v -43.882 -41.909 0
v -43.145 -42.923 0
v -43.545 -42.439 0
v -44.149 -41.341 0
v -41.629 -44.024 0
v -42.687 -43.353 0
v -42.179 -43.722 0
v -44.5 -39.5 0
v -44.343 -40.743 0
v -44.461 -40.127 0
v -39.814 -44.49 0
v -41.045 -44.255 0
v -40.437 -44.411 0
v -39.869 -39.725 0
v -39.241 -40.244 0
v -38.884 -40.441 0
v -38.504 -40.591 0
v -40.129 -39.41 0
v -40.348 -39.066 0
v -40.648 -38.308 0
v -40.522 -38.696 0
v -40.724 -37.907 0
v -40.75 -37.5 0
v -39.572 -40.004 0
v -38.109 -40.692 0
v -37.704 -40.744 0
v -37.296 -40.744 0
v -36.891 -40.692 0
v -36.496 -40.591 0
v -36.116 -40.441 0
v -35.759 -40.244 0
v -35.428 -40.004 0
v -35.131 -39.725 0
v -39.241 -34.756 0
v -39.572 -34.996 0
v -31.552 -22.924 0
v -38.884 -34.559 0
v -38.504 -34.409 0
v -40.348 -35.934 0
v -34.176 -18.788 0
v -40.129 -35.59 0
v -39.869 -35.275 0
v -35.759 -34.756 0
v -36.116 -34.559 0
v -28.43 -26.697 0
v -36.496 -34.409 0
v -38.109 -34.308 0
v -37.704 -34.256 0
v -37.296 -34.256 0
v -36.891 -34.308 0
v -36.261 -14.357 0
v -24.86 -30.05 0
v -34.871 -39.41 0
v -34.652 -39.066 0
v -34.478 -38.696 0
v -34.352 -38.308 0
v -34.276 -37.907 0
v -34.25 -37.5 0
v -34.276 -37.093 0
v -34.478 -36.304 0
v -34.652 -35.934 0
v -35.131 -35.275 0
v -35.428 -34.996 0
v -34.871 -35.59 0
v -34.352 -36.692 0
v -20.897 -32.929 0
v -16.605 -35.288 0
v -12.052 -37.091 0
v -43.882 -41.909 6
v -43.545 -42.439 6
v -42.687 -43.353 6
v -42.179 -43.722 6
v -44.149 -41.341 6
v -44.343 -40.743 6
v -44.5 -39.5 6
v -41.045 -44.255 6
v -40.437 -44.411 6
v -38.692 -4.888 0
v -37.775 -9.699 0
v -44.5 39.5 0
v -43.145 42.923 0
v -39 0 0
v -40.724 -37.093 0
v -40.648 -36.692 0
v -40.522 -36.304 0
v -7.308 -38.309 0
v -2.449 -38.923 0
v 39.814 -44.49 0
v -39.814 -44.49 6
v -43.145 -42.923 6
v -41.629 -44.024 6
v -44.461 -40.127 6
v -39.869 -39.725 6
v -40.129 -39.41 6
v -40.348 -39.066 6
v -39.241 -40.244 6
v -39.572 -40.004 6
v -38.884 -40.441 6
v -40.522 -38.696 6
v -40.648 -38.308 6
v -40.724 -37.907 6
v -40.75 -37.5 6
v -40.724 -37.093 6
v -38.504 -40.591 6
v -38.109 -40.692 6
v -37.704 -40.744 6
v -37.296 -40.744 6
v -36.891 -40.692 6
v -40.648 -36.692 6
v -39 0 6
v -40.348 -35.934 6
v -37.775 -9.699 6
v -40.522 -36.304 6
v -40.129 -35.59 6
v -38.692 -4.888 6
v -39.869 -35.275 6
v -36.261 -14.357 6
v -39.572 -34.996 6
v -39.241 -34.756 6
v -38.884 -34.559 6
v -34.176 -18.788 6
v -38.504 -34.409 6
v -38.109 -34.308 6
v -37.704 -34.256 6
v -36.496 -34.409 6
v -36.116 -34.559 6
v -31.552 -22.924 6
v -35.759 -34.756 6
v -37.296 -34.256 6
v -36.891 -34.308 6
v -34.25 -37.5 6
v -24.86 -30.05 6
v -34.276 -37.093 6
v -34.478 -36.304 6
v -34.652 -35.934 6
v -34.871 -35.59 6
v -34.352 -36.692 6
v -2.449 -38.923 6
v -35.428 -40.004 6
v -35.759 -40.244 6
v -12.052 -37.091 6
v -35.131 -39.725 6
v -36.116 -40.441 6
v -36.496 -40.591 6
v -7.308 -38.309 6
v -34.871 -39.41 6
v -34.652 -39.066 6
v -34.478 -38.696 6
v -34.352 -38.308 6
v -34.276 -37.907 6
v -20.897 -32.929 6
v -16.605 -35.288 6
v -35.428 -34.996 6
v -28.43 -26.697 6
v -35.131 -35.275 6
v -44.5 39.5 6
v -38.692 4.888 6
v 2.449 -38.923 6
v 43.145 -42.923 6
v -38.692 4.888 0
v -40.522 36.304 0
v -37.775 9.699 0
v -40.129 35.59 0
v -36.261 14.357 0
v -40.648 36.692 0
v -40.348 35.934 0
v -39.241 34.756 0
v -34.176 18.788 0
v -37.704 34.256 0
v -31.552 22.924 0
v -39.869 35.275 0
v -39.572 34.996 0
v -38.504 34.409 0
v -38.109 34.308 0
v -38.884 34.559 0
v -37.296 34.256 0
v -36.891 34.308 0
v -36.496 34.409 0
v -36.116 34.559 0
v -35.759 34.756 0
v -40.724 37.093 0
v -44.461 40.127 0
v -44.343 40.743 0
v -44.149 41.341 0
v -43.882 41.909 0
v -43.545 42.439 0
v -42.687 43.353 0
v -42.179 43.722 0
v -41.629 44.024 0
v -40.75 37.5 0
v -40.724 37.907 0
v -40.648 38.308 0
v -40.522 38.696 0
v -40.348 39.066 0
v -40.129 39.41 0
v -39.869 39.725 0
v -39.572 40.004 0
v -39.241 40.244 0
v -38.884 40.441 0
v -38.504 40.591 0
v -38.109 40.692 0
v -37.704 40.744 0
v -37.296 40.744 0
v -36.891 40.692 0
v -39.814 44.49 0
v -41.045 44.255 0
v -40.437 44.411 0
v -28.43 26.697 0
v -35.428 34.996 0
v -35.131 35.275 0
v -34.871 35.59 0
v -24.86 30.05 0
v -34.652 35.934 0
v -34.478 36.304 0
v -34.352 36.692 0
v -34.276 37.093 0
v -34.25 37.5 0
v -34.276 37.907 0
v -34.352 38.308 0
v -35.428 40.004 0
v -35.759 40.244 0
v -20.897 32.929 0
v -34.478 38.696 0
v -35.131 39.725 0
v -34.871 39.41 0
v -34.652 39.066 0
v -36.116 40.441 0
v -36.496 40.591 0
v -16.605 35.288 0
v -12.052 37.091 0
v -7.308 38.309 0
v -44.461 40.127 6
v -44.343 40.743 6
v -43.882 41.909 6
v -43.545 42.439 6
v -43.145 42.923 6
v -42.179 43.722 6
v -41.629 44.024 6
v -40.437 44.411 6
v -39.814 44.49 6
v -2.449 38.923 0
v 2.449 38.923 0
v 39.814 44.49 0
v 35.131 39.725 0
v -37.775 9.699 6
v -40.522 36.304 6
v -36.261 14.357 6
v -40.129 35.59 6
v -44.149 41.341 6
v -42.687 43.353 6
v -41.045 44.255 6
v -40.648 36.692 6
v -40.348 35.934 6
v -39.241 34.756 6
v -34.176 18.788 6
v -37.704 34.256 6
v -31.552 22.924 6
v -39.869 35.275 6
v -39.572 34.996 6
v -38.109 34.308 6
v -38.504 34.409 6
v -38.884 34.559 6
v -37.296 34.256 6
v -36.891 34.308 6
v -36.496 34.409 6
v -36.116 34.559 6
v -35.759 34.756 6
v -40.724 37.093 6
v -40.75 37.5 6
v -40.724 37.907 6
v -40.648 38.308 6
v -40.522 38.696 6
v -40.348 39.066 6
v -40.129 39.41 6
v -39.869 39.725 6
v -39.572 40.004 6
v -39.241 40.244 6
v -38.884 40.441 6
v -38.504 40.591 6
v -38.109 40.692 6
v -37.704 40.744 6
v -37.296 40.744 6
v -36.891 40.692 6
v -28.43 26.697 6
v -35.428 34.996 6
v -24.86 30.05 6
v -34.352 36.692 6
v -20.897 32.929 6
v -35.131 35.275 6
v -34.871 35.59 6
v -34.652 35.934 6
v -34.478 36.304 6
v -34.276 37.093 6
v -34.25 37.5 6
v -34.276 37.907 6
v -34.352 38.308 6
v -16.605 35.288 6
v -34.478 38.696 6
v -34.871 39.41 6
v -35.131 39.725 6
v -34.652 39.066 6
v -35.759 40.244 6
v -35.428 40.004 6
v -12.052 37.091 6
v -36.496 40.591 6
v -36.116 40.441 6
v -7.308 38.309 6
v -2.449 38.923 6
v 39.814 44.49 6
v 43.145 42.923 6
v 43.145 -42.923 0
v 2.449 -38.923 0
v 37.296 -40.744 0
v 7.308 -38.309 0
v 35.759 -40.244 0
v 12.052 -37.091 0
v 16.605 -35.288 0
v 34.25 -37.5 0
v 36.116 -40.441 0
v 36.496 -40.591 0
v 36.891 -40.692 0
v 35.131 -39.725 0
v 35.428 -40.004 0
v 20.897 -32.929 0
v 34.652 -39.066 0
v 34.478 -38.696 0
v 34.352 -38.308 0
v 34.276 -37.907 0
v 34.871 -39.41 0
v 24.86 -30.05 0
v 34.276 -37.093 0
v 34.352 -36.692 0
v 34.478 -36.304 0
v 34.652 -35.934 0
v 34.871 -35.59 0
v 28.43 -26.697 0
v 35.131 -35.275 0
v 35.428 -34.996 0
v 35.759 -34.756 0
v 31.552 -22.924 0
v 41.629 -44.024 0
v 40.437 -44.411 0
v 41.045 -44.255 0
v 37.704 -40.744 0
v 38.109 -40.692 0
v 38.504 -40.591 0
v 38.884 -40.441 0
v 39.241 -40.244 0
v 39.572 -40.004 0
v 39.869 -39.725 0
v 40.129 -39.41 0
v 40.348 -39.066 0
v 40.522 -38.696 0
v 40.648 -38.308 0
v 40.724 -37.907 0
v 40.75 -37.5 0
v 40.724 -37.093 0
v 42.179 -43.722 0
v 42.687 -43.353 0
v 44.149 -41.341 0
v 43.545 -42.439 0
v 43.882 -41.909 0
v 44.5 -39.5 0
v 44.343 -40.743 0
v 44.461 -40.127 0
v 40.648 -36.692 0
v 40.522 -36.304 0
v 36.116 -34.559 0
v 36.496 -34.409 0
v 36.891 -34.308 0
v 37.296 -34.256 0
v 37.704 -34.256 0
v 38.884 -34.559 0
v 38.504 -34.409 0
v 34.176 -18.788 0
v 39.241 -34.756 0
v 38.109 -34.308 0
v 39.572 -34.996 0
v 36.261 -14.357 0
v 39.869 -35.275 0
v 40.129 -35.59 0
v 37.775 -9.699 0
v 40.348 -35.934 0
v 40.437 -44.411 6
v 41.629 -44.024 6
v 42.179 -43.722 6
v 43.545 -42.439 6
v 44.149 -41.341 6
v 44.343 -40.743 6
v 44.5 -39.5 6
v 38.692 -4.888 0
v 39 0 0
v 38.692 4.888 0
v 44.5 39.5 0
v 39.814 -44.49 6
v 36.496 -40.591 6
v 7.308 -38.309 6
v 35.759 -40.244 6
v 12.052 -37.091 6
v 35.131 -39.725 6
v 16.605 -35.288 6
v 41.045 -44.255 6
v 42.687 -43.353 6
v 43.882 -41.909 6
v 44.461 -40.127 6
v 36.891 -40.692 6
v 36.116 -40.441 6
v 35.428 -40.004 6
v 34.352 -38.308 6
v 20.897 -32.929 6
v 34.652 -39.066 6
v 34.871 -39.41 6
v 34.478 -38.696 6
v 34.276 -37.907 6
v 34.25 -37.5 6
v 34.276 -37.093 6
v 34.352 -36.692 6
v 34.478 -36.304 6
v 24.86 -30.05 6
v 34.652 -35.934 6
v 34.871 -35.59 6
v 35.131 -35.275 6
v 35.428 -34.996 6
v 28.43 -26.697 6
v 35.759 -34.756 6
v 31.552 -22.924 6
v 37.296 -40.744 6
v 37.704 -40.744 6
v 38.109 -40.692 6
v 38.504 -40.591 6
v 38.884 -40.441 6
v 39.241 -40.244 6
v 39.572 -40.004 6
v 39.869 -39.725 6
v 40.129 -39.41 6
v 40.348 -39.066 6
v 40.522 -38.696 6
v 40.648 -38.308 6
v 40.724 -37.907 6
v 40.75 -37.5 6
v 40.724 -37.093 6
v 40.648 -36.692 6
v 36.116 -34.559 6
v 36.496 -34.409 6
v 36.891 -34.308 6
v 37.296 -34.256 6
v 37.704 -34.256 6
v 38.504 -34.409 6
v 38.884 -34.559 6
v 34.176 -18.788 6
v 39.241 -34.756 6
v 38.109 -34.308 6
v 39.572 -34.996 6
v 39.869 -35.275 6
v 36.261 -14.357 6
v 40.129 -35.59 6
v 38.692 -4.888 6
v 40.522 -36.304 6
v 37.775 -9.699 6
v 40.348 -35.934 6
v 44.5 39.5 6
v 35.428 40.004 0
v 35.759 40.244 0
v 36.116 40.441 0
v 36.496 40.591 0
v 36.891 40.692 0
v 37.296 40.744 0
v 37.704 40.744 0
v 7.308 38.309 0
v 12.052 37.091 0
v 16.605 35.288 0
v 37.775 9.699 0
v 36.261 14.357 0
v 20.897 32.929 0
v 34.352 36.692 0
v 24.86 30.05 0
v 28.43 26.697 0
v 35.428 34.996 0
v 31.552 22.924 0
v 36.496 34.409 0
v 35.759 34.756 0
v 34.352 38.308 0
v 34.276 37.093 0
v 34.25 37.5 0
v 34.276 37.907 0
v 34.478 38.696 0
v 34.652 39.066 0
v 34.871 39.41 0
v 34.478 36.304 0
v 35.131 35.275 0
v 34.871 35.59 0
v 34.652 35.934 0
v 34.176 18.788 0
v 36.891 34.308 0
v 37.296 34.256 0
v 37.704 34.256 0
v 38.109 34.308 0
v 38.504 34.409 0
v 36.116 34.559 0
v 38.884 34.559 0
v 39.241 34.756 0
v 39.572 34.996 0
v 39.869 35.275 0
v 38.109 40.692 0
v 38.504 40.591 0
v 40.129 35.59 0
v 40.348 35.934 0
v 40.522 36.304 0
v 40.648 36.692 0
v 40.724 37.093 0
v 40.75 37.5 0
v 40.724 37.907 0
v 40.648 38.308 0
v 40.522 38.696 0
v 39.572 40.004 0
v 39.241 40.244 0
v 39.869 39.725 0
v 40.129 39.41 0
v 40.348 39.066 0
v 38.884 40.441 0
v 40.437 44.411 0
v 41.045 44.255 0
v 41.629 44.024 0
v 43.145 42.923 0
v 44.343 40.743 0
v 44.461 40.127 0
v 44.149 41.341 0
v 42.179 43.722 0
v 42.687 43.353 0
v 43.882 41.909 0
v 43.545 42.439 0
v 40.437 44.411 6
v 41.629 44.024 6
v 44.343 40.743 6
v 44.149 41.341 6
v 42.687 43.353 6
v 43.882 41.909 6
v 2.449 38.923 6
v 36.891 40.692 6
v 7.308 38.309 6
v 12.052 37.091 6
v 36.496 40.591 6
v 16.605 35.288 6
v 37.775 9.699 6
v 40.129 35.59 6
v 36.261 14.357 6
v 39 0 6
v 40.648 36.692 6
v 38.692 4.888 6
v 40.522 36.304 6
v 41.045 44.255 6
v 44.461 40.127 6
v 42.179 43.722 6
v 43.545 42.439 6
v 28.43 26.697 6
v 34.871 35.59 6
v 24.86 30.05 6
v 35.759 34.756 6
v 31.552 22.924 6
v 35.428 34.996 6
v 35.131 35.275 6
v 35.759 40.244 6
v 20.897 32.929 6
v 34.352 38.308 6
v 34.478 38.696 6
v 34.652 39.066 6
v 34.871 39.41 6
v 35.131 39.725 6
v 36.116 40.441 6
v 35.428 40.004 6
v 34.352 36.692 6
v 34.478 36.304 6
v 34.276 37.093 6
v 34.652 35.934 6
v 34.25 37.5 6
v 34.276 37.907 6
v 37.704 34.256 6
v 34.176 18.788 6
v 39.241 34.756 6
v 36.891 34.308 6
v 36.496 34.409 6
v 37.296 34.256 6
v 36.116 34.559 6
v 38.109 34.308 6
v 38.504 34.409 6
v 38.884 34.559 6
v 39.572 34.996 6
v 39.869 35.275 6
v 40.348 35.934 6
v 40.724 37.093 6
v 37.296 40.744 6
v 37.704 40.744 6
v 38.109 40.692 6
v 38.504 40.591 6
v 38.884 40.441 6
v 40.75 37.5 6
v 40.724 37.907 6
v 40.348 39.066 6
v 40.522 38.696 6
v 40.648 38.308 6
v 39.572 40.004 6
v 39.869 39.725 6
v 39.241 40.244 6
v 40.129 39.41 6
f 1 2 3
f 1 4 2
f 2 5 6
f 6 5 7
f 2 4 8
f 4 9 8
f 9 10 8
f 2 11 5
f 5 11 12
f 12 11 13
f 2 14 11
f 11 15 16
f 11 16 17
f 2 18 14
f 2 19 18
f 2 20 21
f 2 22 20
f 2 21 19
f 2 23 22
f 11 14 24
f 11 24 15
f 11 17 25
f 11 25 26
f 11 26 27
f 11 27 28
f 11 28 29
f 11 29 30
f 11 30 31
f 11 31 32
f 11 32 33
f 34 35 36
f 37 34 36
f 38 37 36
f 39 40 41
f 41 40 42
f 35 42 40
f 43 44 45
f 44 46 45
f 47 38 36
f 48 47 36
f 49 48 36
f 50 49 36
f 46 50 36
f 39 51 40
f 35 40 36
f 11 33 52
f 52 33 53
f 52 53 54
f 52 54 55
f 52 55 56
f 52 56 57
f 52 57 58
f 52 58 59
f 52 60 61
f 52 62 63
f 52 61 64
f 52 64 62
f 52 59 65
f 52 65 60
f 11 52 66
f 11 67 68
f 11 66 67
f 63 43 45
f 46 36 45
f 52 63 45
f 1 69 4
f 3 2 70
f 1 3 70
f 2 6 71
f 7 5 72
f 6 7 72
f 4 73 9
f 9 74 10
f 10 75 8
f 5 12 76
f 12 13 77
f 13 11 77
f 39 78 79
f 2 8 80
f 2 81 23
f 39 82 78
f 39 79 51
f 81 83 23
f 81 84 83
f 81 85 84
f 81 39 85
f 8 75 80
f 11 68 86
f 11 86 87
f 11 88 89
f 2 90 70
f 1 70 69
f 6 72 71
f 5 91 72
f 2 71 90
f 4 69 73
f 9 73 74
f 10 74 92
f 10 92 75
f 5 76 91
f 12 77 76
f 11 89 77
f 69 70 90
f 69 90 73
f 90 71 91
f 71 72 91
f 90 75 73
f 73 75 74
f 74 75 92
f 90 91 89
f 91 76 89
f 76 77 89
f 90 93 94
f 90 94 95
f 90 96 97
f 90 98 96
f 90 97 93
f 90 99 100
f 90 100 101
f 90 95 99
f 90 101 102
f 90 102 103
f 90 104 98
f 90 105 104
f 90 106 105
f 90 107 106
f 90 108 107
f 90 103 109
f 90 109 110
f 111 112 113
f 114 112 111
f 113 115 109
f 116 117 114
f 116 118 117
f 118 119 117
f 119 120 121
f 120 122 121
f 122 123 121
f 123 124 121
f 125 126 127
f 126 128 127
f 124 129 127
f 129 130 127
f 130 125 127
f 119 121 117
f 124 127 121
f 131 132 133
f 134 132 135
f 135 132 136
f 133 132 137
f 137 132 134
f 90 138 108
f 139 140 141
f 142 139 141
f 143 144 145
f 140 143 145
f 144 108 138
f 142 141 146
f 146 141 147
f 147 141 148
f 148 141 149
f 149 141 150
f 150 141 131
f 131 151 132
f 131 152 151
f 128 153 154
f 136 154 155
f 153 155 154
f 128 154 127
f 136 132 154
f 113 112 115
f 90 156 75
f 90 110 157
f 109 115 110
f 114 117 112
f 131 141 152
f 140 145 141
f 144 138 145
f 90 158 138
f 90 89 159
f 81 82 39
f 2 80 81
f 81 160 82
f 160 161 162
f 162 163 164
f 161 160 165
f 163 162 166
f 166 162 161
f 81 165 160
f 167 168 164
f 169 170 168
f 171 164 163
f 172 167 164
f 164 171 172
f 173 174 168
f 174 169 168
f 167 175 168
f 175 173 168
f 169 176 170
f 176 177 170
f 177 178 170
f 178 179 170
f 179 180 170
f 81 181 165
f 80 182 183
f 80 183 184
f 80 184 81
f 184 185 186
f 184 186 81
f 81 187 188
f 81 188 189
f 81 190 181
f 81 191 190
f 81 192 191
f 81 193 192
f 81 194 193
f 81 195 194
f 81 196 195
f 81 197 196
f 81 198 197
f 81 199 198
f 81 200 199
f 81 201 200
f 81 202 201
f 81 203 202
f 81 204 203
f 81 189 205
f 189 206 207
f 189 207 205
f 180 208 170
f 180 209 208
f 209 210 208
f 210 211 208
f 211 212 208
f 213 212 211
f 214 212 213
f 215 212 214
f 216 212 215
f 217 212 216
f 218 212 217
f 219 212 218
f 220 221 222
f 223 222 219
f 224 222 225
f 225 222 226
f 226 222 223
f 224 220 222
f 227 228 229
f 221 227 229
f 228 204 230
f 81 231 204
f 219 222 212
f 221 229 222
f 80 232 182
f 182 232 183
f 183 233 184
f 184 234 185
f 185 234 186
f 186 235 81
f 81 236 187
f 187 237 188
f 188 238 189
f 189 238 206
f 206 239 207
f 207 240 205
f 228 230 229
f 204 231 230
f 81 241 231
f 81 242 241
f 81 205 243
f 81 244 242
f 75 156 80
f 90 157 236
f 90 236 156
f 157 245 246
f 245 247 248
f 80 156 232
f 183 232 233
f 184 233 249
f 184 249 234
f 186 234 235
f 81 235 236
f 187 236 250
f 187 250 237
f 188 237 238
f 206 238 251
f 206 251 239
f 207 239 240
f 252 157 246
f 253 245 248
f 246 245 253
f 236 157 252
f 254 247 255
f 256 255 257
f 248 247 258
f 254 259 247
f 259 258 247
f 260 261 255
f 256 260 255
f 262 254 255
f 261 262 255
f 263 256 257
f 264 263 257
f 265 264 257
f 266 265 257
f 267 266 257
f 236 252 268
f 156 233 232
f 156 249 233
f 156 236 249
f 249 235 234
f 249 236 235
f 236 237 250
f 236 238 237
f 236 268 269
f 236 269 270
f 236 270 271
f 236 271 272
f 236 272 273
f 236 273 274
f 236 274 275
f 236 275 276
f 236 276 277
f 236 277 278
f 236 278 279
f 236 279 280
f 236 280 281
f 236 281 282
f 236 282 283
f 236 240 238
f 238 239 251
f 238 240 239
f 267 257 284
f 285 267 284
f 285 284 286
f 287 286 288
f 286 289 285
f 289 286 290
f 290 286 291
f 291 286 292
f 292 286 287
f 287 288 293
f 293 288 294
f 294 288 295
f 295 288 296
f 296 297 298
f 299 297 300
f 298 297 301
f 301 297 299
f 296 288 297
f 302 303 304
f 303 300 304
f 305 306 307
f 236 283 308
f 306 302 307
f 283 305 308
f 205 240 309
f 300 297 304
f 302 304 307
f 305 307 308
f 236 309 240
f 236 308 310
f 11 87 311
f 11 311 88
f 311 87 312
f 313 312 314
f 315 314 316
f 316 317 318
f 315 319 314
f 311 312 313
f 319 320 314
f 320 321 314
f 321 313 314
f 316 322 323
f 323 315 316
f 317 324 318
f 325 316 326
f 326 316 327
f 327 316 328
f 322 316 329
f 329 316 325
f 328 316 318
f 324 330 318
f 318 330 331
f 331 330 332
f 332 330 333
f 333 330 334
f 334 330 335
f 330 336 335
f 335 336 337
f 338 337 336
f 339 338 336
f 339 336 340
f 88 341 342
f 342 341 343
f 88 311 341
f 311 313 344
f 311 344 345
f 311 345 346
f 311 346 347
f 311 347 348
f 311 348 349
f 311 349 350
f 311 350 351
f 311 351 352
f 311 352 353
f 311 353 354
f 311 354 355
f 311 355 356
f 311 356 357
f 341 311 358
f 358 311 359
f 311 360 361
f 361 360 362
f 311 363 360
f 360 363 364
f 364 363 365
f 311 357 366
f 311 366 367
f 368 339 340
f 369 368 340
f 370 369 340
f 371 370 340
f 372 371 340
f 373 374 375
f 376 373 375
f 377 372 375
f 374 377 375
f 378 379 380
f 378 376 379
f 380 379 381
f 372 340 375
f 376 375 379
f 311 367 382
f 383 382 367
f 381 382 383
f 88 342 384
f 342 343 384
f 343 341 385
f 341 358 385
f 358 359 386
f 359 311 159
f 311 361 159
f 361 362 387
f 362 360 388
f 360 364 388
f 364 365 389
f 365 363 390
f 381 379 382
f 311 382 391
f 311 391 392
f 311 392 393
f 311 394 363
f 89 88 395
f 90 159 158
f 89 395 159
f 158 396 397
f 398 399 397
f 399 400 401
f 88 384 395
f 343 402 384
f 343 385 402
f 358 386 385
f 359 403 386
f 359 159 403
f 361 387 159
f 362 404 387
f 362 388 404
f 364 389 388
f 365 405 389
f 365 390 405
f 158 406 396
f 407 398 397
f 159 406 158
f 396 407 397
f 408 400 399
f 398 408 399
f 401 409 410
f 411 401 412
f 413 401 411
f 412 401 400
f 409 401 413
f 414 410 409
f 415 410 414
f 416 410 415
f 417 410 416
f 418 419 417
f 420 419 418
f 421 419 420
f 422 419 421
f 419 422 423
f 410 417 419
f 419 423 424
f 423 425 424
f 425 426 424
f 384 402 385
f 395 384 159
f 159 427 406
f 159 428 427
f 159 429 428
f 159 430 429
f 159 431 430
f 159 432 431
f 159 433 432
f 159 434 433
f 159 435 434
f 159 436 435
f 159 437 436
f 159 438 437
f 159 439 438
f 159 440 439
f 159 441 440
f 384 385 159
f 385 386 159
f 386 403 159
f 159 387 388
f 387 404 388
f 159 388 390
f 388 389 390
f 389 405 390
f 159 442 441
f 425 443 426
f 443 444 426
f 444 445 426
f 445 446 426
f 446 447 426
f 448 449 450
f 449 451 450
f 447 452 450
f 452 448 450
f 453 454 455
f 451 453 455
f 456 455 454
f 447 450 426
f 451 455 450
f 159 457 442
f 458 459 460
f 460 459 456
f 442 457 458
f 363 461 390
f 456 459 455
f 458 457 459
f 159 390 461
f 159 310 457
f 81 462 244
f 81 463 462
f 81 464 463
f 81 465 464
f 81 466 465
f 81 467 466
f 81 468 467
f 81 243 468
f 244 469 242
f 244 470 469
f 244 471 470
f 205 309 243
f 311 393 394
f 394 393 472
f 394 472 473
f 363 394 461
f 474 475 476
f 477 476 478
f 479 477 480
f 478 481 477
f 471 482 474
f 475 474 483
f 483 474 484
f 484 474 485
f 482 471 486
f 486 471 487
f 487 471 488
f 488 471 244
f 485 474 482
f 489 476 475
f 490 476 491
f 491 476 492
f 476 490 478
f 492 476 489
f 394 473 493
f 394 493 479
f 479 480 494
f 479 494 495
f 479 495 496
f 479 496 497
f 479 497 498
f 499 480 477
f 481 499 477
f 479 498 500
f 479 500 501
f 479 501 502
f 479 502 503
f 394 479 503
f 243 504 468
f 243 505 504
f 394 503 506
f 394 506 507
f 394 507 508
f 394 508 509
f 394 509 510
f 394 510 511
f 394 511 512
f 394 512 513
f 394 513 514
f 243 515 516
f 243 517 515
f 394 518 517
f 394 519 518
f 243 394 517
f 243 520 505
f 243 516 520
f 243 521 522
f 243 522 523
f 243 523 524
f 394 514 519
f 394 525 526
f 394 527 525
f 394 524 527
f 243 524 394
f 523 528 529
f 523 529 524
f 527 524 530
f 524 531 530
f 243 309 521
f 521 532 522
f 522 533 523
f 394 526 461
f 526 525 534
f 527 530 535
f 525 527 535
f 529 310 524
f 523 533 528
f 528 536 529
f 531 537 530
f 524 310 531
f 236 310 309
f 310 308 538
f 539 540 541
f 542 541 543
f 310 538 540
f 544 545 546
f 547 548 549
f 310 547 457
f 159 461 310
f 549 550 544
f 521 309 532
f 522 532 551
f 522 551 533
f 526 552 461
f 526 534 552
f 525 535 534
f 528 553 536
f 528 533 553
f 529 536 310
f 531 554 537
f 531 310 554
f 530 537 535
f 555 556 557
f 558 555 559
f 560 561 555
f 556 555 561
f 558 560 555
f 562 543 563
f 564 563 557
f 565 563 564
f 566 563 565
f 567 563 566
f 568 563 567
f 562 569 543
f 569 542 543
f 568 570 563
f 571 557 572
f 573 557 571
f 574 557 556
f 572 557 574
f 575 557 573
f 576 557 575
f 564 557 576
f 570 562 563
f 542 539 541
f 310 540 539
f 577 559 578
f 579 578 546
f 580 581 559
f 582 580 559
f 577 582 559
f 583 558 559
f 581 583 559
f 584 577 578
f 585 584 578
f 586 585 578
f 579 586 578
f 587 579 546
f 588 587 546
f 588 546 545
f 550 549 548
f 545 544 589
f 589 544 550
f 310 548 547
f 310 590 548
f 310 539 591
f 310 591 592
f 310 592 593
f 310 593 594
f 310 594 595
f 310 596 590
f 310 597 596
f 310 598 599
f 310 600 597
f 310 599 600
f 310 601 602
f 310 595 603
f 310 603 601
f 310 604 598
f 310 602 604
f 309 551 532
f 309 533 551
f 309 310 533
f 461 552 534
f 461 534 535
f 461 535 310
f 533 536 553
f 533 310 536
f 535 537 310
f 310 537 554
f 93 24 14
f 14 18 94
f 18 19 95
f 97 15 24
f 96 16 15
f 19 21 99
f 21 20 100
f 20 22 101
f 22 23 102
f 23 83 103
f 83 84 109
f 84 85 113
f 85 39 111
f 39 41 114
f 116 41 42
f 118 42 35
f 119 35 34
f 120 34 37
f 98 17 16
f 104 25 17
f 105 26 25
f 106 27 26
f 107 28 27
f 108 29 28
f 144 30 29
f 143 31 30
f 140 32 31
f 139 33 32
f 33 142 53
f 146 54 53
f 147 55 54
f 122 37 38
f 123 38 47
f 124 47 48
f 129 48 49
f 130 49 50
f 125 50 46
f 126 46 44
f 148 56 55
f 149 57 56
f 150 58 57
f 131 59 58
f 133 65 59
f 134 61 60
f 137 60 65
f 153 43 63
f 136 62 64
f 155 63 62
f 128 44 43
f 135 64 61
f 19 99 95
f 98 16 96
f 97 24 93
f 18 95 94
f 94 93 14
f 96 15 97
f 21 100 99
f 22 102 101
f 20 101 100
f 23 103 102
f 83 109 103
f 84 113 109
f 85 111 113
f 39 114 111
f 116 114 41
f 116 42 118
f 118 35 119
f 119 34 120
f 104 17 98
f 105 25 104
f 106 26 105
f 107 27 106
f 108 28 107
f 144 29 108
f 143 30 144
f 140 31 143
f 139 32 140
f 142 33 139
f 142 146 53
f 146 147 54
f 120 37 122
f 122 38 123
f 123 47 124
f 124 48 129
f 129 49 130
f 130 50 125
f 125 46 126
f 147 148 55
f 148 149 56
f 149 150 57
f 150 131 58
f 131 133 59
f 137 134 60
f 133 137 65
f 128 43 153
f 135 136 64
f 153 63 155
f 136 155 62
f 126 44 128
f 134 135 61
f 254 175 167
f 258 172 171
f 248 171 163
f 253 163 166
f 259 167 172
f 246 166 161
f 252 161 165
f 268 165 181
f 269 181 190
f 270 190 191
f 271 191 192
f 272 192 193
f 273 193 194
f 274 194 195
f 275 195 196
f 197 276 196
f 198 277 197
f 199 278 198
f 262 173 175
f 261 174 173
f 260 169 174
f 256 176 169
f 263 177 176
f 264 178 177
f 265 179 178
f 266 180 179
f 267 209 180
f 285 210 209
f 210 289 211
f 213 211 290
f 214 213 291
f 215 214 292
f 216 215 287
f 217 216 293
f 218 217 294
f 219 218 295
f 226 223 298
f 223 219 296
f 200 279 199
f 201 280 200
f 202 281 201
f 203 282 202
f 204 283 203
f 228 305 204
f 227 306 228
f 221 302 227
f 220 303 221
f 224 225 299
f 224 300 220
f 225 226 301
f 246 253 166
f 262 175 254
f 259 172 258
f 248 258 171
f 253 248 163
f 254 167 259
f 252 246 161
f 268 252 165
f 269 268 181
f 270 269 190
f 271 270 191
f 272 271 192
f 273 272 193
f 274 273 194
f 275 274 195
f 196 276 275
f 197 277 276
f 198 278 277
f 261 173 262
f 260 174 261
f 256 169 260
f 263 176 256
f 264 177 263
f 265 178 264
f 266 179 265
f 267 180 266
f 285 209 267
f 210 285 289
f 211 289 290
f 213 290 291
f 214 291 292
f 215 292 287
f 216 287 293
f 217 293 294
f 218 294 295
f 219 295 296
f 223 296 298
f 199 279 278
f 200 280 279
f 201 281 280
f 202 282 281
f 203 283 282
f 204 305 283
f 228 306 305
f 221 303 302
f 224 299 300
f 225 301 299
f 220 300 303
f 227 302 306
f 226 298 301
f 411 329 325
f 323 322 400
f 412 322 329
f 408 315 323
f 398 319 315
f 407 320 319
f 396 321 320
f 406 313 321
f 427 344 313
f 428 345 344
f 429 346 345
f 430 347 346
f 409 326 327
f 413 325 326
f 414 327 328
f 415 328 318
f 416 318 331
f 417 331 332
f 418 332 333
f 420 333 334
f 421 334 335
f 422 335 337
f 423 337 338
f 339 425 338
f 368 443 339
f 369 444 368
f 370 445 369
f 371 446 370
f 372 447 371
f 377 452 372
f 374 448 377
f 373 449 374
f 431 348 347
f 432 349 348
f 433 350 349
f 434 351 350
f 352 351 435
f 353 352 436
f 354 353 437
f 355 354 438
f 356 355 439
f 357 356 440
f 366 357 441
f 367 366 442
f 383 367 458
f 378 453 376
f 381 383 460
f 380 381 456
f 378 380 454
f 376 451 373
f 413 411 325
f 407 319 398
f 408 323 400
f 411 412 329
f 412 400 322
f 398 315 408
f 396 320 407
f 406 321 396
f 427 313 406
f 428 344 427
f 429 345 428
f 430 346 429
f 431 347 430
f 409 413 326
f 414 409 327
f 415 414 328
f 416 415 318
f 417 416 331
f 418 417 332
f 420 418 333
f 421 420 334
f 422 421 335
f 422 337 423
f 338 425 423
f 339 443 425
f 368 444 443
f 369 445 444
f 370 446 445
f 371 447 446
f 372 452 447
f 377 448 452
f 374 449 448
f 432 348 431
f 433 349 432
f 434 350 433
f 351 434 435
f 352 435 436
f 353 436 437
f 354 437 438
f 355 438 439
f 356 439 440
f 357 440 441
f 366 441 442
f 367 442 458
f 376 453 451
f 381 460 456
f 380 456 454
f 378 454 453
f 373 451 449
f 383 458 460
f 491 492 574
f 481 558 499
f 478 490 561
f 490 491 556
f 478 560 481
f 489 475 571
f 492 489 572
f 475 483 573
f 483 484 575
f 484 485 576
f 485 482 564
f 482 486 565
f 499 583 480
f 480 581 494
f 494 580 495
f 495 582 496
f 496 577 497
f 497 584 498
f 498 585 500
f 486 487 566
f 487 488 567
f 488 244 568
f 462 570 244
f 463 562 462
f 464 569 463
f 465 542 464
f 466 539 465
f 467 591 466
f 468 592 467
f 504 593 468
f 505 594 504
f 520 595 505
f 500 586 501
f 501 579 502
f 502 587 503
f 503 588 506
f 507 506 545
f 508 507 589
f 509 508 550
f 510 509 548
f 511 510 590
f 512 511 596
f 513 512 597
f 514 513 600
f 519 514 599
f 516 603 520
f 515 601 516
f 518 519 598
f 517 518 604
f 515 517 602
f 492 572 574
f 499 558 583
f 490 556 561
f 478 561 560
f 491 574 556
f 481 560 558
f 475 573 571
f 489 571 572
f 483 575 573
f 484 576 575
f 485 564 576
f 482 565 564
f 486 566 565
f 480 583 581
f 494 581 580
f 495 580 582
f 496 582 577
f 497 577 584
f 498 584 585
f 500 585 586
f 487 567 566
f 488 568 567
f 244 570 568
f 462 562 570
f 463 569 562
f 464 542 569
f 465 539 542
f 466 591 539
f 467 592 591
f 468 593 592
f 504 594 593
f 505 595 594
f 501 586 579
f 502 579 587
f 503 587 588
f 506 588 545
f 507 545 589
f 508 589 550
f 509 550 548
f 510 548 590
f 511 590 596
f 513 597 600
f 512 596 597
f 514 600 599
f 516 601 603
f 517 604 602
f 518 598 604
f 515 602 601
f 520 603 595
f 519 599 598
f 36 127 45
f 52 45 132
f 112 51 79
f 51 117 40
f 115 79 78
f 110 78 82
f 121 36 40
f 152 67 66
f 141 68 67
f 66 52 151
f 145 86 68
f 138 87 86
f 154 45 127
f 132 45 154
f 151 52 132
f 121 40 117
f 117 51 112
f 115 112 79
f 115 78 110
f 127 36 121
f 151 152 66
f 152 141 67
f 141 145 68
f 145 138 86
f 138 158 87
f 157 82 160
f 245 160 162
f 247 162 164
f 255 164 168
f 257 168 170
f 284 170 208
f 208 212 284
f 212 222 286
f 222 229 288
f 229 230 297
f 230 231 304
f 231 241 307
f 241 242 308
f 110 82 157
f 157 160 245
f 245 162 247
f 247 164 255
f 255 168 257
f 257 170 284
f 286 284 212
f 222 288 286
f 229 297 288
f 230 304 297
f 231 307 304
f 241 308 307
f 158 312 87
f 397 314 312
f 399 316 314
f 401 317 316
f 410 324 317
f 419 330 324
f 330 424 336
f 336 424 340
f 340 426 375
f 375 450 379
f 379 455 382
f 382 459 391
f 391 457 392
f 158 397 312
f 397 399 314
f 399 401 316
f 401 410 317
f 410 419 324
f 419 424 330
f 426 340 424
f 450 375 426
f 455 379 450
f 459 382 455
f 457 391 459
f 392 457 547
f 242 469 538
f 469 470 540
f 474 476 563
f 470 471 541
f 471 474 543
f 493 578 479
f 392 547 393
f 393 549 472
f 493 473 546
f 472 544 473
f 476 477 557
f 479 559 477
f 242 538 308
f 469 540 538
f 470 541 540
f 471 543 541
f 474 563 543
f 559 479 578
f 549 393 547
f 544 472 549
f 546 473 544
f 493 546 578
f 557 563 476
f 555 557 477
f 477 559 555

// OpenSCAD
$fn = 50;

difference() {
	union() {
		hull() {
			translate(v = [-39.5, 39.5, 0]) {
				cylinder(h = 6, r = 5);
			}
			translate(v = [39.5, 39.5, 0]) {
				cylinder(h = 6, r = 5);
			}
			translate(v = [-39.5, -39.5, 0]) {
				cylinder(h = 6, r = 5);
			}
			translate(v = [39.5, -39.5, 0]) {
				cylinder(h = 6, r = 5);
			}
		}
	}
	union() {
		translate(v = [-37.5, -37.5, -100.0]) {
			cylinder(h = 200, r = 3.25);
		}
		translate(v = [-37.5, 37.5, -100.0]) {
			cylinder(h = 200, r = 3.25);
		}
		translate(v = [37.5, -37.5, -100.0]) {
			cylinder(h = 200, r = 3.25);
		}
		translate(v = [37.5, 37.5, -100.0]) {
			cylinder(h = 200, r = 3.25);
		}
		translate(v = [-37.5, -37.5, -100.0]) {
			cylinder(h = 200, r = 1.8);
		}
		translate(v = [-37.5, 37.5, -100.0]) {
			cylinder(h = 200, r = 1.8);
		}
		translate(v = [37.5, -37.5, -100.0]) {
			cylinder(h = 200, r = 1.8);
		}
		translate(v = [37.5, 37.5, -100.0]) {
			cylinder(h = 200, r = 1.8);
		}
		cylinder(h = 6, r = 39.0);
	}
}
